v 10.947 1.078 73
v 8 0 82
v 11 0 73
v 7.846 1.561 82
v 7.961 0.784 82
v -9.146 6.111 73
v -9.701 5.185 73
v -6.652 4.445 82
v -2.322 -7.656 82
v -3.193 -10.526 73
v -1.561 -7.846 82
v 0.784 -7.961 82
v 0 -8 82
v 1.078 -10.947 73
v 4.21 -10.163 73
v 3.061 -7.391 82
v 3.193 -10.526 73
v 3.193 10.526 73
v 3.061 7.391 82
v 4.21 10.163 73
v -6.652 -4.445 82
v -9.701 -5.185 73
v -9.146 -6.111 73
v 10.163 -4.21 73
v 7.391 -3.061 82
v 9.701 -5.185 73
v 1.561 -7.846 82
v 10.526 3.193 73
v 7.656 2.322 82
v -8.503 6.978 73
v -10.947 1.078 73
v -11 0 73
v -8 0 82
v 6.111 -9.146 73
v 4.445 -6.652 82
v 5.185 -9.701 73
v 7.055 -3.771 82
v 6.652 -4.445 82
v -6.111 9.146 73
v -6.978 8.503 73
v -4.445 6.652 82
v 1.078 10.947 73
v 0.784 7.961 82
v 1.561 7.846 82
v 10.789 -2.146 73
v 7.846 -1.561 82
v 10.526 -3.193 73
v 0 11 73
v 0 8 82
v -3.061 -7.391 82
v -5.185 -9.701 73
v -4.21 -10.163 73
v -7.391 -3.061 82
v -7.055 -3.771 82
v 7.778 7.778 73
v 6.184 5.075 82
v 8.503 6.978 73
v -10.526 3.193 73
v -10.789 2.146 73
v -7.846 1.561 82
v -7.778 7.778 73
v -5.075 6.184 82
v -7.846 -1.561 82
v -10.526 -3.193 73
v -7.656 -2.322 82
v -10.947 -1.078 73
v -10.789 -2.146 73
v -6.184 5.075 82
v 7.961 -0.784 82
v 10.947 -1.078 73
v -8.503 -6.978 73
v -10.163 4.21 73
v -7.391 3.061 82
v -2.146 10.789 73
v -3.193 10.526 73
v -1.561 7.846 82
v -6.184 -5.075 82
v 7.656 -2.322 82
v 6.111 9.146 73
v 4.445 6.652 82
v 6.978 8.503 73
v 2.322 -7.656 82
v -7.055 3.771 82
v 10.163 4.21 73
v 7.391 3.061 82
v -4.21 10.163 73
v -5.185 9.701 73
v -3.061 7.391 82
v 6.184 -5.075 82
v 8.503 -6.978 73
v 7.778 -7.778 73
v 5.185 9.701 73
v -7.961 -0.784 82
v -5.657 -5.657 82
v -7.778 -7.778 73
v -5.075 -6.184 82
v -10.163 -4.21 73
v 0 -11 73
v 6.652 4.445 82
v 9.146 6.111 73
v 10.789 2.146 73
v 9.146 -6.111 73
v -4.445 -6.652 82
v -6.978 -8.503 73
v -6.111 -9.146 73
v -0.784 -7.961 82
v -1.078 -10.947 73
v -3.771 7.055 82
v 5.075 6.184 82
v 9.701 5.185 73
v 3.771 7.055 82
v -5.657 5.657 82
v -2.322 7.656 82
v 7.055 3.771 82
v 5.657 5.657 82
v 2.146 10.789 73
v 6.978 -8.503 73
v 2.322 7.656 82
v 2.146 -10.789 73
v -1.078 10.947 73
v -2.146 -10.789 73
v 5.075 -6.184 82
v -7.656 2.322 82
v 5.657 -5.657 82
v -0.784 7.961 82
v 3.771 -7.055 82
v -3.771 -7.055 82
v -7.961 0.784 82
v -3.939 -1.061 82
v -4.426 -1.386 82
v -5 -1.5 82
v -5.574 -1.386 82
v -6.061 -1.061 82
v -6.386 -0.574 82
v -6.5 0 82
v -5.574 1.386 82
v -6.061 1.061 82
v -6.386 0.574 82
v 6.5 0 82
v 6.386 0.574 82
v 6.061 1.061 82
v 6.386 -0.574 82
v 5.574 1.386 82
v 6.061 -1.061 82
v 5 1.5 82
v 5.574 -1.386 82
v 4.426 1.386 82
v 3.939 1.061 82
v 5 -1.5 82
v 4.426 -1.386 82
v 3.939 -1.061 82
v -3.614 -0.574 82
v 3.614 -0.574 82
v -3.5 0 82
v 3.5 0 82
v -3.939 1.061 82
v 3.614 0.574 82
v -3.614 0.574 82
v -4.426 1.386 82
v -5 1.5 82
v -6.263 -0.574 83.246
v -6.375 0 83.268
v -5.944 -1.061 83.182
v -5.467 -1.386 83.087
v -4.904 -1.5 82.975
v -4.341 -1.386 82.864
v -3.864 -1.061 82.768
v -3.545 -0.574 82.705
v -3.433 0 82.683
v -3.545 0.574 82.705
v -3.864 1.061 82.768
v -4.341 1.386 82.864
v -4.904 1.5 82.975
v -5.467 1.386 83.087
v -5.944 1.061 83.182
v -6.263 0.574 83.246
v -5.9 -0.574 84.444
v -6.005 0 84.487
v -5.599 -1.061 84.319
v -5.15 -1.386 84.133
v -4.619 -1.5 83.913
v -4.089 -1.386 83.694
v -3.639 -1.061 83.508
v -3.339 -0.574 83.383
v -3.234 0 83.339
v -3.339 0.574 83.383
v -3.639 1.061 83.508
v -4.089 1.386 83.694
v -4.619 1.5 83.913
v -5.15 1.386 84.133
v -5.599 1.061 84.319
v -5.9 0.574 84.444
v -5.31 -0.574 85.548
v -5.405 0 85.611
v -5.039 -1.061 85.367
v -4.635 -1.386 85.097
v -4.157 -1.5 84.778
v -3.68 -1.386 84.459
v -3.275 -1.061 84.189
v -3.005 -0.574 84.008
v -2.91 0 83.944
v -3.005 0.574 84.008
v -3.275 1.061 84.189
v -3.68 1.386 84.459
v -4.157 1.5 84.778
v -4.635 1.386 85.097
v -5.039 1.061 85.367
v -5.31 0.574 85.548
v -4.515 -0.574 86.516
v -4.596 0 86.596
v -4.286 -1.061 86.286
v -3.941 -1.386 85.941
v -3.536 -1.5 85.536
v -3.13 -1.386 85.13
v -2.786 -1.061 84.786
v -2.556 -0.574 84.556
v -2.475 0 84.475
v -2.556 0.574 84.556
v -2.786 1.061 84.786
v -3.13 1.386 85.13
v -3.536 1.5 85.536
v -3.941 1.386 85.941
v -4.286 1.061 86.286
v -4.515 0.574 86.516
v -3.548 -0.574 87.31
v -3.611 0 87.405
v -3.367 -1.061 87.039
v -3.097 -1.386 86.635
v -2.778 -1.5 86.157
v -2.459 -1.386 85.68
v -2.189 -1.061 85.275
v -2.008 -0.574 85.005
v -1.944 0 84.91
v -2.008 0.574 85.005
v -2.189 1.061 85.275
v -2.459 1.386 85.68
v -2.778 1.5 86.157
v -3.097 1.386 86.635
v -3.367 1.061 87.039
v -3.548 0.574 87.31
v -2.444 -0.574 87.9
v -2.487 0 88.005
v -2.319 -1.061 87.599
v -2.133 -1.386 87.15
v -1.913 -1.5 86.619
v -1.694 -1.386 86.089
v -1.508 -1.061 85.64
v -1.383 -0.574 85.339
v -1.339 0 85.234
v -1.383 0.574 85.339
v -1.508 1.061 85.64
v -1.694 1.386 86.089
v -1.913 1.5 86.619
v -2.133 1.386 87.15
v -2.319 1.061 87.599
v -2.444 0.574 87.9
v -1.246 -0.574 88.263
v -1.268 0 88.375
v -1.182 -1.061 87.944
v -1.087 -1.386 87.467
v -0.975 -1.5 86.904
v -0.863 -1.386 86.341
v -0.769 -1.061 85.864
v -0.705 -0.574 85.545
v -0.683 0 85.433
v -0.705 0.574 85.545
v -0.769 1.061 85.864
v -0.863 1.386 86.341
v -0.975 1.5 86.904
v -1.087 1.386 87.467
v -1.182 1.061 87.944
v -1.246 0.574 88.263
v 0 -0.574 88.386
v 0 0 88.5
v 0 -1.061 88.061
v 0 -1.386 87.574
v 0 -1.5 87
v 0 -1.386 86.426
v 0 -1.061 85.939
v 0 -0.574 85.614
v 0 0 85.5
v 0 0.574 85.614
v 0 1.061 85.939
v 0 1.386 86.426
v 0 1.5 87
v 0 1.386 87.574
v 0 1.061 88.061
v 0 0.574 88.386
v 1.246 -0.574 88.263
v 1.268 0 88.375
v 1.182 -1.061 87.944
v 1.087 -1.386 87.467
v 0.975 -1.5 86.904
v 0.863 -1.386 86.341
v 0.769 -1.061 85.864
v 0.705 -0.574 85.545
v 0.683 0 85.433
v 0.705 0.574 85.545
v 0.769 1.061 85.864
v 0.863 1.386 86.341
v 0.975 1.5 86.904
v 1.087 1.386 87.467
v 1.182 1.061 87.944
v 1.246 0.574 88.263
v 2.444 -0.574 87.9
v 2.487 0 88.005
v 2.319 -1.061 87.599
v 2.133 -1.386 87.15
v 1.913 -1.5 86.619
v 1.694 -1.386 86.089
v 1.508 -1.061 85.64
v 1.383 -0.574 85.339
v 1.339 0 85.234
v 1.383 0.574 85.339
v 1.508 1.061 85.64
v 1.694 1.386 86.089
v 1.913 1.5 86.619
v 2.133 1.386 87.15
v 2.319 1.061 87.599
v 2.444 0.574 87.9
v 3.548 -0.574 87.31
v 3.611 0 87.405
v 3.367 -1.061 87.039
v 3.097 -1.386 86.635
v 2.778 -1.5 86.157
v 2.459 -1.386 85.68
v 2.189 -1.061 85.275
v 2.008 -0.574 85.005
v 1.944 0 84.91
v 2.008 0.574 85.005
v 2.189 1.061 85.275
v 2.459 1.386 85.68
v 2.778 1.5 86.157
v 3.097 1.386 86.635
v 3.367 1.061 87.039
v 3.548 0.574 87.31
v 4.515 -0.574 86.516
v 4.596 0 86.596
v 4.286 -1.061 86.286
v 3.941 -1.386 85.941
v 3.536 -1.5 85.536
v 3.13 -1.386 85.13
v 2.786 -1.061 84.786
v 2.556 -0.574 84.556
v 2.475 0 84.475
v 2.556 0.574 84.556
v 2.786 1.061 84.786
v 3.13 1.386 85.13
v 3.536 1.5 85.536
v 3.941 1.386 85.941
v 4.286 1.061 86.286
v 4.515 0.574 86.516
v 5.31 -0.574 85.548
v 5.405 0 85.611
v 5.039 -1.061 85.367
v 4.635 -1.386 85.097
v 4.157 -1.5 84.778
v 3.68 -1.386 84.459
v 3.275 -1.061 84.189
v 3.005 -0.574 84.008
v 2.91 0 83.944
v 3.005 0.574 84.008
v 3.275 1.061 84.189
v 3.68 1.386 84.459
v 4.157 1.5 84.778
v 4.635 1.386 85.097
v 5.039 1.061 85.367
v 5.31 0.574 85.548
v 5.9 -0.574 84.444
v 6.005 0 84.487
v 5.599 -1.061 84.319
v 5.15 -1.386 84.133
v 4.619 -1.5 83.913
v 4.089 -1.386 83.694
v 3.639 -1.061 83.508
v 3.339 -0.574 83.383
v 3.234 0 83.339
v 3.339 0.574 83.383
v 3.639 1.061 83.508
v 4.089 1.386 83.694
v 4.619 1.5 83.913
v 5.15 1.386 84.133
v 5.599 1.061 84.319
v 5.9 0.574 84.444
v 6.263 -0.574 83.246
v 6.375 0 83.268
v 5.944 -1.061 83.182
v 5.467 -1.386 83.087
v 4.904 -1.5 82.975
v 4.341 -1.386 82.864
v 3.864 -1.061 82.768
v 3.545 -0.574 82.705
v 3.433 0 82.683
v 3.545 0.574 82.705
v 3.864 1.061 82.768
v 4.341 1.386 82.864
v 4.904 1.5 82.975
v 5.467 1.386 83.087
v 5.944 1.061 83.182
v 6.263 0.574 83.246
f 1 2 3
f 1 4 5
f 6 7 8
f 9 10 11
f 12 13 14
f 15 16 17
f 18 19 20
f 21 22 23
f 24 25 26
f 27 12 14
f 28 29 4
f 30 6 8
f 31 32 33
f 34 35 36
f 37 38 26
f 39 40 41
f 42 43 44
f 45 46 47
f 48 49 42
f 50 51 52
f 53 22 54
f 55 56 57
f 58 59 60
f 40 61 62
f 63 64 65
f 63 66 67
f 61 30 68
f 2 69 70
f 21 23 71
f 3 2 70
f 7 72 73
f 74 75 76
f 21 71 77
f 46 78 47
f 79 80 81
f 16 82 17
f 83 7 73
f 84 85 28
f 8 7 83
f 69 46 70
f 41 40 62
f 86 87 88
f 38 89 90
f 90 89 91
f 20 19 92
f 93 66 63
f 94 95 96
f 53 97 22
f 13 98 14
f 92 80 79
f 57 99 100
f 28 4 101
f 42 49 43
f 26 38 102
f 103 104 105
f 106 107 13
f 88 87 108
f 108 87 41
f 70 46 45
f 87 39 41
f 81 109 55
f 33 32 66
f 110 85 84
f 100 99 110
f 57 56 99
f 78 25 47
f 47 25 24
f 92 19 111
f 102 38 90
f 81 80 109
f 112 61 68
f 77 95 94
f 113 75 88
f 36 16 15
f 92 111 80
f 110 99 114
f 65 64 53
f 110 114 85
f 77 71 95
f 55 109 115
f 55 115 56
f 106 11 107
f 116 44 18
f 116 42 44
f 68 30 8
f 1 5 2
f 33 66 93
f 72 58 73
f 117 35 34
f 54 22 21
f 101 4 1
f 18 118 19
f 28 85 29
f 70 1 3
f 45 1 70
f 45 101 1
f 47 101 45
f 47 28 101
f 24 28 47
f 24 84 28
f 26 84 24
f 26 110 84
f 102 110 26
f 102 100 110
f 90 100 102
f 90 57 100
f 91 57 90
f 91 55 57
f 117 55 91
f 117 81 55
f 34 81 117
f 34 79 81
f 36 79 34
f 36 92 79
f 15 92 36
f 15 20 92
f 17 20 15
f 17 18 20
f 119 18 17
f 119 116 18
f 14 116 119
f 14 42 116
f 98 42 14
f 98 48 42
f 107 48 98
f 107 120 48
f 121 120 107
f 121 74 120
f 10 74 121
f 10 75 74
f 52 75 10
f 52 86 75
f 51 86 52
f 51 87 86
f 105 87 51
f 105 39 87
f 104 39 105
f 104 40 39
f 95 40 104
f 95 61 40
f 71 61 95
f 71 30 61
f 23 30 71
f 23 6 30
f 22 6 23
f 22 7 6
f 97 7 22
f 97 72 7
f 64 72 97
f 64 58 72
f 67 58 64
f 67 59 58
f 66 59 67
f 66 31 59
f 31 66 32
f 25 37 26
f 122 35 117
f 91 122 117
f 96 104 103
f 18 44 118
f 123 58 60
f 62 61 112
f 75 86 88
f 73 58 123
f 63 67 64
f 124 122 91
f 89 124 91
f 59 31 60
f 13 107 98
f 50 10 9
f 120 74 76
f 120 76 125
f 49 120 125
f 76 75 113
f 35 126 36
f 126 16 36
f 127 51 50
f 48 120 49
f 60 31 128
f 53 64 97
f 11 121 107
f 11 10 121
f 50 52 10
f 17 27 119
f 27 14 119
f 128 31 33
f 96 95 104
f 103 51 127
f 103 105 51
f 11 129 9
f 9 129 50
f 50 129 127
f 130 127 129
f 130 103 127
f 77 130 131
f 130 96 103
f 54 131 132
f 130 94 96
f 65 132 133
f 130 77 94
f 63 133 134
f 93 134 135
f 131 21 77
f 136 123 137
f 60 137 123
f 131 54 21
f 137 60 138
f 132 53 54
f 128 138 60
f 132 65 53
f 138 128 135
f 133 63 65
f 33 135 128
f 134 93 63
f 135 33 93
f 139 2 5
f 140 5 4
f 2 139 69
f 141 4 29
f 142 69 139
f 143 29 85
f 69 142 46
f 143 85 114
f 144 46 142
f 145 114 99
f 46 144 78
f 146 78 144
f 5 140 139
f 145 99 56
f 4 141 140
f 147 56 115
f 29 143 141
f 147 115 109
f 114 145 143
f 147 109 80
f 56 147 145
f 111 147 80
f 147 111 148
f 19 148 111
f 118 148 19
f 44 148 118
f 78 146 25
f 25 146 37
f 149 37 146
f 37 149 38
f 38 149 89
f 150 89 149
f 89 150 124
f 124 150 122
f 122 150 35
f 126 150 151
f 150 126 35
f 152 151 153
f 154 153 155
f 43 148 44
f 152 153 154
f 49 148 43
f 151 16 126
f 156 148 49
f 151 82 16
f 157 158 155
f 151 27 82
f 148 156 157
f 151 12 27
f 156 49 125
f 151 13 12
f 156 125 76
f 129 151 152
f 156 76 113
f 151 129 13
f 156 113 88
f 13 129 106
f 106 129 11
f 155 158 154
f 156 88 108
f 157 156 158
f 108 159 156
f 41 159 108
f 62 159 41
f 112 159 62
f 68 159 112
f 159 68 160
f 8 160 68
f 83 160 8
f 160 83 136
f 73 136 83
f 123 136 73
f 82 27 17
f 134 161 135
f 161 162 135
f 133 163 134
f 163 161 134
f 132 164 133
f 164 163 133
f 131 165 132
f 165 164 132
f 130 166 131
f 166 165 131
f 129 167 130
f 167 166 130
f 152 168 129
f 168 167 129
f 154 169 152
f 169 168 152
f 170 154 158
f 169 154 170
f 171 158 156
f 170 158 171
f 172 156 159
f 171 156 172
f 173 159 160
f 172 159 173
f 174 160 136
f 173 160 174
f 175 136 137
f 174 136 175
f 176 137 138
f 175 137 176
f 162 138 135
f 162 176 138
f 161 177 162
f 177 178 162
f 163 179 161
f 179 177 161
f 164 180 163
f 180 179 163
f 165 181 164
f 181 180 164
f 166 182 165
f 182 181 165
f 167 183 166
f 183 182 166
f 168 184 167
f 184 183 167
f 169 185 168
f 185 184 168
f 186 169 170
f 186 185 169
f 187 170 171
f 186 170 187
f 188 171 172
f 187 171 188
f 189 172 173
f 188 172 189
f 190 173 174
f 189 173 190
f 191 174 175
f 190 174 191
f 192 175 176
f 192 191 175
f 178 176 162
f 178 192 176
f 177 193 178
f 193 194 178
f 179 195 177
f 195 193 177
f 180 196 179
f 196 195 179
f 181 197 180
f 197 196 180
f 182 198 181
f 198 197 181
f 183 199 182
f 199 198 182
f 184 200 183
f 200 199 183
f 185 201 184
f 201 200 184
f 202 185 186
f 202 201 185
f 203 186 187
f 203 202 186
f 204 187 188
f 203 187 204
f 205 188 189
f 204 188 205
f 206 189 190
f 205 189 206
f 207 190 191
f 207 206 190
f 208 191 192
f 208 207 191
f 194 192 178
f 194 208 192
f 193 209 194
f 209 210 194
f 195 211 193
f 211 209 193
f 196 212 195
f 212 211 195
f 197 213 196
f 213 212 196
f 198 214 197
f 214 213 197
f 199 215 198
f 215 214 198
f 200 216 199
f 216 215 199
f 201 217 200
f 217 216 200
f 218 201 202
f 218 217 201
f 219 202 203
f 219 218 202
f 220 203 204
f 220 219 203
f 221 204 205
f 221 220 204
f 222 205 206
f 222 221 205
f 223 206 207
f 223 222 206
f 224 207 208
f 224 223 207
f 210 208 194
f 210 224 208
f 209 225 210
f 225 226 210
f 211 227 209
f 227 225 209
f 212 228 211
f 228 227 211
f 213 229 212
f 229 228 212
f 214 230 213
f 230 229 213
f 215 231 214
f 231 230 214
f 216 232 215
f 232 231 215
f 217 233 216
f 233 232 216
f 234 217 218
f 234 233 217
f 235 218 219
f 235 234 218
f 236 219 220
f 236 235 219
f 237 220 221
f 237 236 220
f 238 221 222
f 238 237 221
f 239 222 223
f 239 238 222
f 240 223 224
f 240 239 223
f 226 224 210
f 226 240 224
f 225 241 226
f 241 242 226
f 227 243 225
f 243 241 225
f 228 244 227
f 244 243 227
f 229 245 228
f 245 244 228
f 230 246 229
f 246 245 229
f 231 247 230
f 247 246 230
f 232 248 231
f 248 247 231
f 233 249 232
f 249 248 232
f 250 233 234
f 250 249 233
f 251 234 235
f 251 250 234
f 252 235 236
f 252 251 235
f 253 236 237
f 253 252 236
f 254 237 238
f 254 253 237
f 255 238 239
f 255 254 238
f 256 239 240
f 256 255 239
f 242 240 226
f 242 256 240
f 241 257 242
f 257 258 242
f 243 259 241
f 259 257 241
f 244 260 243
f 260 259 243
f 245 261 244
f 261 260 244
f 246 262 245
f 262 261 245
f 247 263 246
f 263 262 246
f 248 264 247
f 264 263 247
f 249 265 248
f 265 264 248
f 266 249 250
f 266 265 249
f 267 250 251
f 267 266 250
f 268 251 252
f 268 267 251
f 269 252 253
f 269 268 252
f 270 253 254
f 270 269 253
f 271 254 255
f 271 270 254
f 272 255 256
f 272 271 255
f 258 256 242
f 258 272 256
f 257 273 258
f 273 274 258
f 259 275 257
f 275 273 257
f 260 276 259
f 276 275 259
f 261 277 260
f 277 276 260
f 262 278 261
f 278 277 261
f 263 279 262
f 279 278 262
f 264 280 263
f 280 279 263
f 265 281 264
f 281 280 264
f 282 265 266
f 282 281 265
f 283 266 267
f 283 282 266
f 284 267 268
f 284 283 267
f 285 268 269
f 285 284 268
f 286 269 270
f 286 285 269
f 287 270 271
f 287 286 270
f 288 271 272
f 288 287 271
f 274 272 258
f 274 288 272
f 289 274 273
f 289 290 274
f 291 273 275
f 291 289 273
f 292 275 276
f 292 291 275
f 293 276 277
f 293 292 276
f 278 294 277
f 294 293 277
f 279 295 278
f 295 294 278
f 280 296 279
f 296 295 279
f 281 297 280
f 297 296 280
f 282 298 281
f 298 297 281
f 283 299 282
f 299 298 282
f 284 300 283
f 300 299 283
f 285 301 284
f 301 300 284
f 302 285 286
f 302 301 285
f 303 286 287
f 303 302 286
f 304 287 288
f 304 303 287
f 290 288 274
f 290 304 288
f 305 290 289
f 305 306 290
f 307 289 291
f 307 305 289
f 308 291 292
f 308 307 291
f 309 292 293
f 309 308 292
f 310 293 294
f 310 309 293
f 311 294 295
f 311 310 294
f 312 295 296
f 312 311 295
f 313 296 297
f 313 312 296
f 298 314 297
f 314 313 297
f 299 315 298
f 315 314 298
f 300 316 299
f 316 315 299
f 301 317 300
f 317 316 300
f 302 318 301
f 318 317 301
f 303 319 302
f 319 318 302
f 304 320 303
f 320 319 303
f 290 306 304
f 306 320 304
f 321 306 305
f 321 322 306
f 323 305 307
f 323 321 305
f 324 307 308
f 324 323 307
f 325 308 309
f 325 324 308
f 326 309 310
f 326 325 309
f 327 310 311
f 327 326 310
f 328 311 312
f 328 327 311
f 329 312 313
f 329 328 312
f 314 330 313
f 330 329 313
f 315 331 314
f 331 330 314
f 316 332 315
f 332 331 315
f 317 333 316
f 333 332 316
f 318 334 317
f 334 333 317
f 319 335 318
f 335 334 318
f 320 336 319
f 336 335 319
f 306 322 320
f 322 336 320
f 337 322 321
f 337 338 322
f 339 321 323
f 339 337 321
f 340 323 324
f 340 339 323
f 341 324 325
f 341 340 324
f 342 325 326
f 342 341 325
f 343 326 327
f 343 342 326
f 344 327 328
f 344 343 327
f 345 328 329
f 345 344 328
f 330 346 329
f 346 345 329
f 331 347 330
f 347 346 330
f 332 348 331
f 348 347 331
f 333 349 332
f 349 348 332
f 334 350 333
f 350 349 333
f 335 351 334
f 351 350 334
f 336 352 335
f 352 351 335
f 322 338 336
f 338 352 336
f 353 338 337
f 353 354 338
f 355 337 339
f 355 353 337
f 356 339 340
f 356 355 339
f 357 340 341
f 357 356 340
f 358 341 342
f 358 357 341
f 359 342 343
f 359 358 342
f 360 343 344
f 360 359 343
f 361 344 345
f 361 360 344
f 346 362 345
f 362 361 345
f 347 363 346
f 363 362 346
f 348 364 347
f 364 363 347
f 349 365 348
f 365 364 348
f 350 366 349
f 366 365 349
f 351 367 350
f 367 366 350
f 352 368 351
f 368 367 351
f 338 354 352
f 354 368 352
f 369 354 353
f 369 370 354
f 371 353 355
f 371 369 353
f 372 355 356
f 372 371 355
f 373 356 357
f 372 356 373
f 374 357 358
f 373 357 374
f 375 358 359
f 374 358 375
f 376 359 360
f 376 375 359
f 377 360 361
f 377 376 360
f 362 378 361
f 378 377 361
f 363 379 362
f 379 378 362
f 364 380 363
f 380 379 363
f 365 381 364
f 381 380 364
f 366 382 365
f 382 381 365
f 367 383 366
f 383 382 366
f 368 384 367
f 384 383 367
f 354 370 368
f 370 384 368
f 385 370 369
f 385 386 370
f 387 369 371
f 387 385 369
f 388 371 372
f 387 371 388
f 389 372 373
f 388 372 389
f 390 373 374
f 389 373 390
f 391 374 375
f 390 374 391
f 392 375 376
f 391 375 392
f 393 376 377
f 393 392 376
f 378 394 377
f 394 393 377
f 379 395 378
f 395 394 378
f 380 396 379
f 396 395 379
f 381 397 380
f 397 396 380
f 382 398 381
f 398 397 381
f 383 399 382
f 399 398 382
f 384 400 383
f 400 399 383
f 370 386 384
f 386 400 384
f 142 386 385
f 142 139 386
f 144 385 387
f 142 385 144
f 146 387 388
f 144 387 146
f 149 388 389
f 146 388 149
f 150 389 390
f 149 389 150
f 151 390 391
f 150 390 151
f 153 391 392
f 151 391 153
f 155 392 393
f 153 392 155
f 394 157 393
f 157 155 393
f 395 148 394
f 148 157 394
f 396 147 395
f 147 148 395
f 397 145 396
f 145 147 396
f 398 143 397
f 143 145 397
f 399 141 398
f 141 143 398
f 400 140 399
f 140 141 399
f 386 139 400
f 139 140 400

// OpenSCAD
// Capuchón dorado con argolla
D = 80; $fn = 64;
translate([0, 0, D - 7]) { cylinder(d1 = 22, d2 = 16, h = 9); translate([0, 0, 9]) rotate([90, 0, 0]) rotate_extrude($fn = 32) translate([5, 0]) circle(d = 3, $fn = 16); }
